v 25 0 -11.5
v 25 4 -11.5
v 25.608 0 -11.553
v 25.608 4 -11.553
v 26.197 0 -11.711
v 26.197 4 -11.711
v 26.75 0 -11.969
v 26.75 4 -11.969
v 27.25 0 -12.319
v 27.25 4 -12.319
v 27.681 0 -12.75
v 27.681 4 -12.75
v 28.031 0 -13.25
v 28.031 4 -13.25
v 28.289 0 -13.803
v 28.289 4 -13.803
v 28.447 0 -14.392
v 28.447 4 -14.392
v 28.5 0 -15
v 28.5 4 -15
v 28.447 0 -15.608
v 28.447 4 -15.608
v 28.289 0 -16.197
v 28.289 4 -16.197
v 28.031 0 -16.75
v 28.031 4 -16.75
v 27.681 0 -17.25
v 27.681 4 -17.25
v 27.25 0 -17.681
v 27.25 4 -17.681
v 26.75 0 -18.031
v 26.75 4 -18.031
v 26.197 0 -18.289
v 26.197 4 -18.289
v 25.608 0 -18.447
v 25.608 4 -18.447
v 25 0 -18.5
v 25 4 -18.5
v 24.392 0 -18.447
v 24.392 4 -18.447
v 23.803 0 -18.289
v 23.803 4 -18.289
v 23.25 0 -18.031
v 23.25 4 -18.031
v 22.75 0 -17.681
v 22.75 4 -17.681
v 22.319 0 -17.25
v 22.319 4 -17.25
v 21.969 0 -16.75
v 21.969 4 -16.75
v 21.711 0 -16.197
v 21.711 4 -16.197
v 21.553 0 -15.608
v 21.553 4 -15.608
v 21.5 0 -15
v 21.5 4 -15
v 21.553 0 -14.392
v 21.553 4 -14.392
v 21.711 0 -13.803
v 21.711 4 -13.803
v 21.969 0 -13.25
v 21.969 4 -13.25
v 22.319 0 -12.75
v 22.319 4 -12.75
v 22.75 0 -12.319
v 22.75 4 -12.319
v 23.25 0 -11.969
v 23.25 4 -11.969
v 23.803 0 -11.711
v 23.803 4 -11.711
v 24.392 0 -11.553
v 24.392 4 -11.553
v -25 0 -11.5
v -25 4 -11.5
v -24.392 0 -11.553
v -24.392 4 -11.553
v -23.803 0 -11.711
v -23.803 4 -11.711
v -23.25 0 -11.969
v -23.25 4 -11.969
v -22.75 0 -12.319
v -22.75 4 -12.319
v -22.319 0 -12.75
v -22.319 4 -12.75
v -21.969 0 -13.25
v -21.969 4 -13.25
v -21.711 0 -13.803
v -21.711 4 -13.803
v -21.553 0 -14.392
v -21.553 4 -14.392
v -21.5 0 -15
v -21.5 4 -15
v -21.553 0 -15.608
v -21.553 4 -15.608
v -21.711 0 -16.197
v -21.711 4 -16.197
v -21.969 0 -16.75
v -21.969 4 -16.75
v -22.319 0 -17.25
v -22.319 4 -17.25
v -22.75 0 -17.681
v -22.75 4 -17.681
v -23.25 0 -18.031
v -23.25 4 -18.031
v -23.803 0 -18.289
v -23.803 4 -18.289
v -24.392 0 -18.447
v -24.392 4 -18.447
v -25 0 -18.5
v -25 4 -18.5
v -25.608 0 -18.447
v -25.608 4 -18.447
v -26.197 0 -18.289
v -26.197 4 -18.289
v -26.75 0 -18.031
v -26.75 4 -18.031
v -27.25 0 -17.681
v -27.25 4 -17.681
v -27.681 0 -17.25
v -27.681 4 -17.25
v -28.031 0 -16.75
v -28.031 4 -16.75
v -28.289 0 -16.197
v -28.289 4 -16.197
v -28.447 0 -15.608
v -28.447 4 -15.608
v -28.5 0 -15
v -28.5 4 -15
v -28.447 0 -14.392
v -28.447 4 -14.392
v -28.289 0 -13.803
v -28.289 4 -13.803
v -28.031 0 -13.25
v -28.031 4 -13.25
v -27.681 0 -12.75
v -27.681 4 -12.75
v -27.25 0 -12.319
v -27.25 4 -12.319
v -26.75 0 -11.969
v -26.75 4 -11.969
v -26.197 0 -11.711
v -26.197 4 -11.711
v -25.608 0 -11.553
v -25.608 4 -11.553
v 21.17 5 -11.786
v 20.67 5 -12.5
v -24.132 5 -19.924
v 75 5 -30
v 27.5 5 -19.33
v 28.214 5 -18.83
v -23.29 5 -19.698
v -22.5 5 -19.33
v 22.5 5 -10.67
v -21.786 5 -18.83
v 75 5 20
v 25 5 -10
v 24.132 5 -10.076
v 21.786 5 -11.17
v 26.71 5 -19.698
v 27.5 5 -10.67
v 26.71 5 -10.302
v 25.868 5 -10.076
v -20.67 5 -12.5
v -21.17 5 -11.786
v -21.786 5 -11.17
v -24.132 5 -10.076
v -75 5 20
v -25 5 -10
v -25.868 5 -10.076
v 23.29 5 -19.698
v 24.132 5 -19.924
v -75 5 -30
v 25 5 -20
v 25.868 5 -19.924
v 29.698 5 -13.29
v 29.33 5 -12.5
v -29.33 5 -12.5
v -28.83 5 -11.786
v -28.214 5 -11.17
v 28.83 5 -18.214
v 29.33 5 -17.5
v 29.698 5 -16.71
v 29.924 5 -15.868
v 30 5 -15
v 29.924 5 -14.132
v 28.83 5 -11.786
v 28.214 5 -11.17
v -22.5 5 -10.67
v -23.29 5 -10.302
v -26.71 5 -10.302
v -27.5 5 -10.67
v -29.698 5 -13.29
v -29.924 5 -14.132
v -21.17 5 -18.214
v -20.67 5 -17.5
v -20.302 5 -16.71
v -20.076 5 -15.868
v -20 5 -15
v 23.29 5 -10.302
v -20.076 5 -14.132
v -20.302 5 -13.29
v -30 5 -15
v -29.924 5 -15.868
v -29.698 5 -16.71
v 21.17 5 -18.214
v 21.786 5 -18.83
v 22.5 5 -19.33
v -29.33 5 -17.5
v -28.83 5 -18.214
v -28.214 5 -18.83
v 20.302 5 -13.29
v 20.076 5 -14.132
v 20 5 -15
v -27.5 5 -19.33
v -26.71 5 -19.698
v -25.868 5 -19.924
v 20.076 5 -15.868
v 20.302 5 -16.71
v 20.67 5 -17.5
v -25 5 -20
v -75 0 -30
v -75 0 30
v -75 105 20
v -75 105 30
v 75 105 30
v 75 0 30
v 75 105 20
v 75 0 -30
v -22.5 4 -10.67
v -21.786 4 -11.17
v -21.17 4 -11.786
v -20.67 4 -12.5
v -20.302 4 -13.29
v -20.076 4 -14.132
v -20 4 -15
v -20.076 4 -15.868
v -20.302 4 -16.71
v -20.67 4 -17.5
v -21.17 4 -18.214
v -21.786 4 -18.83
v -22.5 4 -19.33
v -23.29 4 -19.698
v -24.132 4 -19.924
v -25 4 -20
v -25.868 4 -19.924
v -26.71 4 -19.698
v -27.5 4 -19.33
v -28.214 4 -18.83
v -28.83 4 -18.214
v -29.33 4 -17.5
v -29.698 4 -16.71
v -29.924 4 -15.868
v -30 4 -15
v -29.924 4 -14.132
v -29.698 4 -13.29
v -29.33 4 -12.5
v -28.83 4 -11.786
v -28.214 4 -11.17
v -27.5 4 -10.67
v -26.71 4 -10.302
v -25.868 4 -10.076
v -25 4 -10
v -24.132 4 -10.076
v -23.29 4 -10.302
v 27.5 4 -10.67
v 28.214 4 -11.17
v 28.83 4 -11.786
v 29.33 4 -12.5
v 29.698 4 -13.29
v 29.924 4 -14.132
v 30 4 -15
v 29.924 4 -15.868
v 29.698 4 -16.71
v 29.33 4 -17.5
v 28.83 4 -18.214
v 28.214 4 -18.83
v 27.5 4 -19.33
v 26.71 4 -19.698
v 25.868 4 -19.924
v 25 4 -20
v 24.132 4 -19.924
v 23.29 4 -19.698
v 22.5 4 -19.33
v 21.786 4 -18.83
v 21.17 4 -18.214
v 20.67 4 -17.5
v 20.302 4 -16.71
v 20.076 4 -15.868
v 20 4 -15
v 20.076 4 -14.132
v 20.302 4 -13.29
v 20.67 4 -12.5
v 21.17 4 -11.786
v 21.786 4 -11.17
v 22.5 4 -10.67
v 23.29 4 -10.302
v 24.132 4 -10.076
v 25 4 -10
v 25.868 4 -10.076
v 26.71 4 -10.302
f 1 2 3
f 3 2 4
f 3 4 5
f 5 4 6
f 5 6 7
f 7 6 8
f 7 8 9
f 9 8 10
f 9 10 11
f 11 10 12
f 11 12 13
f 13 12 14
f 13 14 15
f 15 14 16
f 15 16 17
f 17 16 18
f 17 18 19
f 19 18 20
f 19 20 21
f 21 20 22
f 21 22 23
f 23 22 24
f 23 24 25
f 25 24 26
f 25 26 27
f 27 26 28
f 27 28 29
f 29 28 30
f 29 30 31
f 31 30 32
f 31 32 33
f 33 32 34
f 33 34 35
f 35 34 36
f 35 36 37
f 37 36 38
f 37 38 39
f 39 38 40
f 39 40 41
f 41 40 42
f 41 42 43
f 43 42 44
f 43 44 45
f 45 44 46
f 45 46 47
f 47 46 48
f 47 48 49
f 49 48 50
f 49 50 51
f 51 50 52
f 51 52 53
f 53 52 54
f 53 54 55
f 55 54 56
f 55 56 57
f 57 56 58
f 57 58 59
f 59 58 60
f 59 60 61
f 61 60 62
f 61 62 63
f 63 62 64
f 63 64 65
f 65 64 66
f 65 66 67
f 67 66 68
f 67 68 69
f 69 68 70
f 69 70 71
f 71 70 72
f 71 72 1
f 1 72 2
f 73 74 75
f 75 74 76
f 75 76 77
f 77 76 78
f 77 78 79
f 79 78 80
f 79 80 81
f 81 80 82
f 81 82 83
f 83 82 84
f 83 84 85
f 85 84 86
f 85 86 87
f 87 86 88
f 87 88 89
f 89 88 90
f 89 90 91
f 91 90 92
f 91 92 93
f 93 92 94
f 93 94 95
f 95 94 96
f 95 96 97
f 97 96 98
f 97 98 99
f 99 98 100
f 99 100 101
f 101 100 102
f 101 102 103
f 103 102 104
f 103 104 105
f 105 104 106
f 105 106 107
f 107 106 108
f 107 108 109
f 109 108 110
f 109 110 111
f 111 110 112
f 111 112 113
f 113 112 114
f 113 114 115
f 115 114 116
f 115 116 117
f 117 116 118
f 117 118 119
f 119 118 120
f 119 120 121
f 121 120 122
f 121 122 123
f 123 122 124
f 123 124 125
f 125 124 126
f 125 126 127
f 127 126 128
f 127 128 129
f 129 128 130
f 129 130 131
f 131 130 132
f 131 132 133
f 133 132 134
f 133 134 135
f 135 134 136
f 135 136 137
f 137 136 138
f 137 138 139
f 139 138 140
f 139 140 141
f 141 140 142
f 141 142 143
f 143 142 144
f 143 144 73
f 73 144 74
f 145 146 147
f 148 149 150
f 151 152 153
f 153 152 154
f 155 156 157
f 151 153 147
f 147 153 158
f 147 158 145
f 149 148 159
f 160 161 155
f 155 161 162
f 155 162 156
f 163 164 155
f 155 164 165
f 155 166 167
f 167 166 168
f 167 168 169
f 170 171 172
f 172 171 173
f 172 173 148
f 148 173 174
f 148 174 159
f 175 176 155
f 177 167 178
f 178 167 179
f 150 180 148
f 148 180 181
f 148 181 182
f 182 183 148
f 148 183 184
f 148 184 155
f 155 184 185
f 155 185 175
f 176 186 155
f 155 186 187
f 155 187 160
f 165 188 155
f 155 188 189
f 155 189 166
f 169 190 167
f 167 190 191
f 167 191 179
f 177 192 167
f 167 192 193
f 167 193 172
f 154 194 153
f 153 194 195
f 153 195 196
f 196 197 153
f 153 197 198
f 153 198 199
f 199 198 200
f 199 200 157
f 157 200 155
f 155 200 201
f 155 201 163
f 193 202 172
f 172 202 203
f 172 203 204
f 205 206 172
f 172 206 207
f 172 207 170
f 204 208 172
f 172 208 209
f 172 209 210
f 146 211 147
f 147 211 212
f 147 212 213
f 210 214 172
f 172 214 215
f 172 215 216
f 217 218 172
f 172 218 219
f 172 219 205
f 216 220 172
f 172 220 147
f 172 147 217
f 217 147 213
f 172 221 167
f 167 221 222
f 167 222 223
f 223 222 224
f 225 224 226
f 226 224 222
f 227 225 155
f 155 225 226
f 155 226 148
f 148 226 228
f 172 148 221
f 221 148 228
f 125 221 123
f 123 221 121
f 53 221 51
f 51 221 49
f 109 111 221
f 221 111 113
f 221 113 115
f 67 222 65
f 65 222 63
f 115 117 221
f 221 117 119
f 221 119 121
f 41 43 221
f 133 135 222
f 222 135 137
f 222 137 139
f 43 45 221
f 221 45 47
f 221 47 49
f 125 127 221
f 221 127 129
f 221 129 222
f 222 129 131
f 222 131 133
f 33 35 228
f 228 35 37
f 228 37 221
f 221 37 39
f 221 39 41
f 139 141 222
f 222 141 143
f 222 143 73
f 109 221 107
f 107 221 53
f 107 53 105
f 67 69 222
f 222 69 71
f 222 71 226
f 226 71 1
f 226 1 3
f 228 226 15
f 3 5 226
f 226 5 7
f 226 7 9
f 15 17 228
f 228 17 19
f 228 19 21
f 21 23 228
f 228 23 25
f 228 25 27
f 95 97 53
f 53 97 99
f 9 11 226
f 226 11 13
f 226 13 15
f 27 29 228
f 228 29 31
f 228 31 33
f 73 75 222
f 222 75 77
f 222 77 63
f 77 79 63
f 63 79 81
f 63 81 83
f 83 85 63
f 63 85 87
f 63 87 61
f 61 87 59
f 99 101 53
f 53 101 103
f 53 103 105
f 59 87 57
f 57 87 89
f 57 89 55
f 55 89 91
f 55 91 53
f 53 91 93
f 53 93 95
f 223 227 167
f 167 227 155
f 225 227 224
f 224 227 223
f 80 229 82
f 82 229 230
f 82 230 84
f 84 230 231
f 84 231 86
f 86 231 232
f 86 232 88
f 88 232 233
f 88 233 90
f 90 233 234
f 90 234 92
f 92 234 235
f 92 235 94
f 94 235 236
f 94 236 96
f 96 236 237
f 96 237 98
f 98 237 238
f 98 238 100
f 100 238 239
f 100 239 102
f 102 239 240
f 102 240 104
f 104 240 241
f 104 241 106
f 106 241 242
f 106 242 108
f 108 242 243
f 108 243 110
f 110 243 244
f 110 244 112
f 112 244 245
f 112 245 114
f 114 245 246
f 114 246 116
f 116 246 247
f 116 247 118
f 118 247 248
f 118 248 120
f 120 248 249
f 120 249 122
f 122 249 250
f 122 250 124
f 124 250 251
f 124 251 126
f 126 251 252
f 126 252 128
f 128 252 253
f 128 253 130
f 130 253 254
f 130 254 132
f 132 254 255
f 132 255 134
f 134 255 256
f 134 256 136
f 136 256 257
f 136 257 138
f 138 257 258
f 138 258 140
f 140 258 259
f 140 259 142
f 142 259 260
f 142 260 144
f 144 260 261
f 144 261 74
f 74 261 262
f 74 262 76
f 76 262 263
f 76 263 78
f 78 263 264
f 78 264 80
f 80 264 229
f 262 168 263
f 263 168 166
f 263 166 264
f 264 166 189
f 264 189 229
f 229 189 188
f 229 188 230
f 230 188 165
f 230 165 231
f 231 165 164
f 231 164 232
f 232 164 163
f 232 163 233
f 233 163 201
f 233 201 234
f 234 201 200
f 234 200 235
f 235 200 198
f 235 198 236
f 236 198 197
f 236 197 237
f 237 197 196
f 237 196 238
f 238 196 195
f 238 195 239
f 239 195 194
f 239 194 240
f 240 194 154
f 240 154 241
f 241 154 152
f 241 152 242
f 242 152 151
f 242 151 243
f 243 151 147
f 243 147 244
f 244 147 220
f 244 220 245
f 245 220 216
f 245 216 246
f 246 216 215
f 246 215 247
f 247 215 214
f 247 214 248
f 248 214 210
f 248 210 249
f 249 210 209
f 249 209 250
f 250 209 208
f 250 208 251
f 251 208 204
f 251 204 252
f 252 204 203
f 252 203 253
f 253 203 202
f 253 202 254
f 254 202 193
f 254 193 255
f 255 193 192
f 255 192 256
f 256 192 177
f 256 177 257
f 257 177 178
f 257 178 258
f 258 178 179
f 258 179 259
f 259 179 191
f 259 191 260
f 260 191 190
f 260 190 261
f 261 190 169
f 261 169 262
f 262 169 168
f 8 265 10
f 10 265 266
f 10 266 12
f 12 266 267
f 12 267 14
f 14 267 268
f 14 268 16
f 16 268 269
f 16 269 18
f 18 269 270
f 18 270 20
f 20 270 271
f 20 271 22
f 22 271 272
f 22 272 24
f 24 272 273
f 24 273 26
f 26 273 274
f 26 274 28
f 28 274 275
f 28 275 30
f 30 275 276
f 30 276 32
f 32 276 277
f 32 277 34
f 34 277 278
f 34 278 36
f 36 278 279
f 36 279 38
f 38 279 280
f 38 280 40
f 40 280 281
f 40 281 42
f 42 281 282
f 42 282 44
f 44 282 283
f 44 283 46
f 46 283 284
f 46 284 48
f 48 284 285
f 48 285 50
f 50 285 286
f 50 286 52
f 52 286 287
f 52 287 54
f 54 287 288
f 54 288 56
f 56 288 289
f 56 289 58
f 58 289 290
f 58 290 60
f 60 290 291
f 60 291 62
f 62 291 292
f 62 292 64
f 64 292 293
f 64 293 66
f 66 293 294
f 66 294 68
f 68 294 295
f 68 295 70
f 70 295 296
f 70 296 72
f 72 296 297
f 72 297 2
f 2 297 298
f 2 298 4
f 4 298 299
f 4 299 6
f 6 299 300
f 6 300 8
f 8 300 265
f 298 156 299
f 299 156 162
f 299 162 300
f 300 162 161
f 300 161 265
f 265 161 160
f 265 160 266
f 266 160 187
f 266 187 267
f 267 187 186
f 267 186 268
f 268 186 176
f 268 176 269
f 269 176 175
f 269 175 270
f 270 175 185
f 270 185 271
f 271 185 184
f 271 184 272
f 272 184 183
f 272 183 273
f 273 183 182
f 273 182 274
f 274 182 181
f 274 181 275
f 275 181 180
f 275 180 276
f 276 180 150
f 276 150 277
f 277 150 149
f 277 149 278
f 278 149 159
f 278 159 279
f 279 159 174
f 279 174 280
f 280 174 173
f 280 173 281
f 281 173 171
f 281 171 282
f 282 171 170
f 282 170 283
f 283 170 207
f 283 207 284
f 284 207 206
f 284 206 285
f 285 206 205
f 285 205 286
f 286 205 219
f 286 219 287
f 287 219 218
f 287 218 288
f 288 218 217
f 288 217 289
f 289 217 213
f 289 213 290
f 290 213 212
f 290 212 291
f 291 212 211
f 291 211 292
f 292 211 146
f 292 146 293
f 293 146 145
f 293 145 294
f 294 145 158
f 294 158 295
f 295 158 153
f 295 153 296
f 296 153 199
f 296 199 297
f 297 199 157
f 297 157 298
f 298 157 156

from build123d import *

# Parameters (mm, degrees)
SKETCH2_W           = 150
SKETCH2_H           = 60
BOSS_EXTRUDE2_DEPTH = 5
SKETCH3_W           = 150
SKETCH3_H           = 10
BOSS_EXTRUDE3_DEPTH = 100
SKETCH4_R           = 3.5
CUT_EXTRUDE1_DEPTH  = 129.549601322
SKETCH6_R           = 5
CUT_EXTRUDE2_DEPTH  = 1


with BuildPart() as part:
    # Sketch2 → Boss-Extrude2 (new body)
    with BuildSketch(Plane(origin=(0, 0, 0), x_dir=(1, 0, 0), z_dir=(0, 1, 0))):
        Rectangle(SKETCH2_W, SKETCH2_H)
    extrude(amount=BOSS_EXTRUDE2_DEPTH)

    # Sketch3 → Boss-Extrude3 (add)
    with BuildSketch(Plane(origin=(0, 5, 0), x_dir=(1, 0, 0), z_dir=(0, 1, 0))):
        with Locations((0, -25)):
            Rectangle(SKETCH3_W, SKETCH3_H)
    extrude(amount=BOSS_EXTRUDE3_DEPTH)

    # Sketch4 → Cut-Extrude1 (cut, through all)
    with BuildSketch(Plane(origin=(0, 5, 0), x_dir=(1, 0, 0), z_dir=(0, 1, 0))):
        with Locations(Location((-25, 15, 0), (0, 0, 270))):
            Circle(SKETCH4_R)
        with Locations(Location((25, 15, 0), (0, 0, 270))):
            Circle(SKETCH4_R)
    extrude(amount=-CUT_EXTRUDE1_DEPTH, mode=Mode.SUBTRACT)

    # Sketch6 → Cut-Extrude2 (cut)
    with BuildSketch(Plane(origin=(0, 5, 0), x_dir=(1, 0, 0), z_dir=(0, 1, 0))):
        with Locations(Location((-25, 15, 0), (0, 0, 270))):
            Circle(SKETCH6_R)
        with Locations(Location((25, 15, 0), (0, 0, 270))):
            Circle(SKETCH6_R)
    extrude(amount=-CUT_EXTRUDE2_DEPTH, mode=Mode.SUBTRACT)


solid = part.part
